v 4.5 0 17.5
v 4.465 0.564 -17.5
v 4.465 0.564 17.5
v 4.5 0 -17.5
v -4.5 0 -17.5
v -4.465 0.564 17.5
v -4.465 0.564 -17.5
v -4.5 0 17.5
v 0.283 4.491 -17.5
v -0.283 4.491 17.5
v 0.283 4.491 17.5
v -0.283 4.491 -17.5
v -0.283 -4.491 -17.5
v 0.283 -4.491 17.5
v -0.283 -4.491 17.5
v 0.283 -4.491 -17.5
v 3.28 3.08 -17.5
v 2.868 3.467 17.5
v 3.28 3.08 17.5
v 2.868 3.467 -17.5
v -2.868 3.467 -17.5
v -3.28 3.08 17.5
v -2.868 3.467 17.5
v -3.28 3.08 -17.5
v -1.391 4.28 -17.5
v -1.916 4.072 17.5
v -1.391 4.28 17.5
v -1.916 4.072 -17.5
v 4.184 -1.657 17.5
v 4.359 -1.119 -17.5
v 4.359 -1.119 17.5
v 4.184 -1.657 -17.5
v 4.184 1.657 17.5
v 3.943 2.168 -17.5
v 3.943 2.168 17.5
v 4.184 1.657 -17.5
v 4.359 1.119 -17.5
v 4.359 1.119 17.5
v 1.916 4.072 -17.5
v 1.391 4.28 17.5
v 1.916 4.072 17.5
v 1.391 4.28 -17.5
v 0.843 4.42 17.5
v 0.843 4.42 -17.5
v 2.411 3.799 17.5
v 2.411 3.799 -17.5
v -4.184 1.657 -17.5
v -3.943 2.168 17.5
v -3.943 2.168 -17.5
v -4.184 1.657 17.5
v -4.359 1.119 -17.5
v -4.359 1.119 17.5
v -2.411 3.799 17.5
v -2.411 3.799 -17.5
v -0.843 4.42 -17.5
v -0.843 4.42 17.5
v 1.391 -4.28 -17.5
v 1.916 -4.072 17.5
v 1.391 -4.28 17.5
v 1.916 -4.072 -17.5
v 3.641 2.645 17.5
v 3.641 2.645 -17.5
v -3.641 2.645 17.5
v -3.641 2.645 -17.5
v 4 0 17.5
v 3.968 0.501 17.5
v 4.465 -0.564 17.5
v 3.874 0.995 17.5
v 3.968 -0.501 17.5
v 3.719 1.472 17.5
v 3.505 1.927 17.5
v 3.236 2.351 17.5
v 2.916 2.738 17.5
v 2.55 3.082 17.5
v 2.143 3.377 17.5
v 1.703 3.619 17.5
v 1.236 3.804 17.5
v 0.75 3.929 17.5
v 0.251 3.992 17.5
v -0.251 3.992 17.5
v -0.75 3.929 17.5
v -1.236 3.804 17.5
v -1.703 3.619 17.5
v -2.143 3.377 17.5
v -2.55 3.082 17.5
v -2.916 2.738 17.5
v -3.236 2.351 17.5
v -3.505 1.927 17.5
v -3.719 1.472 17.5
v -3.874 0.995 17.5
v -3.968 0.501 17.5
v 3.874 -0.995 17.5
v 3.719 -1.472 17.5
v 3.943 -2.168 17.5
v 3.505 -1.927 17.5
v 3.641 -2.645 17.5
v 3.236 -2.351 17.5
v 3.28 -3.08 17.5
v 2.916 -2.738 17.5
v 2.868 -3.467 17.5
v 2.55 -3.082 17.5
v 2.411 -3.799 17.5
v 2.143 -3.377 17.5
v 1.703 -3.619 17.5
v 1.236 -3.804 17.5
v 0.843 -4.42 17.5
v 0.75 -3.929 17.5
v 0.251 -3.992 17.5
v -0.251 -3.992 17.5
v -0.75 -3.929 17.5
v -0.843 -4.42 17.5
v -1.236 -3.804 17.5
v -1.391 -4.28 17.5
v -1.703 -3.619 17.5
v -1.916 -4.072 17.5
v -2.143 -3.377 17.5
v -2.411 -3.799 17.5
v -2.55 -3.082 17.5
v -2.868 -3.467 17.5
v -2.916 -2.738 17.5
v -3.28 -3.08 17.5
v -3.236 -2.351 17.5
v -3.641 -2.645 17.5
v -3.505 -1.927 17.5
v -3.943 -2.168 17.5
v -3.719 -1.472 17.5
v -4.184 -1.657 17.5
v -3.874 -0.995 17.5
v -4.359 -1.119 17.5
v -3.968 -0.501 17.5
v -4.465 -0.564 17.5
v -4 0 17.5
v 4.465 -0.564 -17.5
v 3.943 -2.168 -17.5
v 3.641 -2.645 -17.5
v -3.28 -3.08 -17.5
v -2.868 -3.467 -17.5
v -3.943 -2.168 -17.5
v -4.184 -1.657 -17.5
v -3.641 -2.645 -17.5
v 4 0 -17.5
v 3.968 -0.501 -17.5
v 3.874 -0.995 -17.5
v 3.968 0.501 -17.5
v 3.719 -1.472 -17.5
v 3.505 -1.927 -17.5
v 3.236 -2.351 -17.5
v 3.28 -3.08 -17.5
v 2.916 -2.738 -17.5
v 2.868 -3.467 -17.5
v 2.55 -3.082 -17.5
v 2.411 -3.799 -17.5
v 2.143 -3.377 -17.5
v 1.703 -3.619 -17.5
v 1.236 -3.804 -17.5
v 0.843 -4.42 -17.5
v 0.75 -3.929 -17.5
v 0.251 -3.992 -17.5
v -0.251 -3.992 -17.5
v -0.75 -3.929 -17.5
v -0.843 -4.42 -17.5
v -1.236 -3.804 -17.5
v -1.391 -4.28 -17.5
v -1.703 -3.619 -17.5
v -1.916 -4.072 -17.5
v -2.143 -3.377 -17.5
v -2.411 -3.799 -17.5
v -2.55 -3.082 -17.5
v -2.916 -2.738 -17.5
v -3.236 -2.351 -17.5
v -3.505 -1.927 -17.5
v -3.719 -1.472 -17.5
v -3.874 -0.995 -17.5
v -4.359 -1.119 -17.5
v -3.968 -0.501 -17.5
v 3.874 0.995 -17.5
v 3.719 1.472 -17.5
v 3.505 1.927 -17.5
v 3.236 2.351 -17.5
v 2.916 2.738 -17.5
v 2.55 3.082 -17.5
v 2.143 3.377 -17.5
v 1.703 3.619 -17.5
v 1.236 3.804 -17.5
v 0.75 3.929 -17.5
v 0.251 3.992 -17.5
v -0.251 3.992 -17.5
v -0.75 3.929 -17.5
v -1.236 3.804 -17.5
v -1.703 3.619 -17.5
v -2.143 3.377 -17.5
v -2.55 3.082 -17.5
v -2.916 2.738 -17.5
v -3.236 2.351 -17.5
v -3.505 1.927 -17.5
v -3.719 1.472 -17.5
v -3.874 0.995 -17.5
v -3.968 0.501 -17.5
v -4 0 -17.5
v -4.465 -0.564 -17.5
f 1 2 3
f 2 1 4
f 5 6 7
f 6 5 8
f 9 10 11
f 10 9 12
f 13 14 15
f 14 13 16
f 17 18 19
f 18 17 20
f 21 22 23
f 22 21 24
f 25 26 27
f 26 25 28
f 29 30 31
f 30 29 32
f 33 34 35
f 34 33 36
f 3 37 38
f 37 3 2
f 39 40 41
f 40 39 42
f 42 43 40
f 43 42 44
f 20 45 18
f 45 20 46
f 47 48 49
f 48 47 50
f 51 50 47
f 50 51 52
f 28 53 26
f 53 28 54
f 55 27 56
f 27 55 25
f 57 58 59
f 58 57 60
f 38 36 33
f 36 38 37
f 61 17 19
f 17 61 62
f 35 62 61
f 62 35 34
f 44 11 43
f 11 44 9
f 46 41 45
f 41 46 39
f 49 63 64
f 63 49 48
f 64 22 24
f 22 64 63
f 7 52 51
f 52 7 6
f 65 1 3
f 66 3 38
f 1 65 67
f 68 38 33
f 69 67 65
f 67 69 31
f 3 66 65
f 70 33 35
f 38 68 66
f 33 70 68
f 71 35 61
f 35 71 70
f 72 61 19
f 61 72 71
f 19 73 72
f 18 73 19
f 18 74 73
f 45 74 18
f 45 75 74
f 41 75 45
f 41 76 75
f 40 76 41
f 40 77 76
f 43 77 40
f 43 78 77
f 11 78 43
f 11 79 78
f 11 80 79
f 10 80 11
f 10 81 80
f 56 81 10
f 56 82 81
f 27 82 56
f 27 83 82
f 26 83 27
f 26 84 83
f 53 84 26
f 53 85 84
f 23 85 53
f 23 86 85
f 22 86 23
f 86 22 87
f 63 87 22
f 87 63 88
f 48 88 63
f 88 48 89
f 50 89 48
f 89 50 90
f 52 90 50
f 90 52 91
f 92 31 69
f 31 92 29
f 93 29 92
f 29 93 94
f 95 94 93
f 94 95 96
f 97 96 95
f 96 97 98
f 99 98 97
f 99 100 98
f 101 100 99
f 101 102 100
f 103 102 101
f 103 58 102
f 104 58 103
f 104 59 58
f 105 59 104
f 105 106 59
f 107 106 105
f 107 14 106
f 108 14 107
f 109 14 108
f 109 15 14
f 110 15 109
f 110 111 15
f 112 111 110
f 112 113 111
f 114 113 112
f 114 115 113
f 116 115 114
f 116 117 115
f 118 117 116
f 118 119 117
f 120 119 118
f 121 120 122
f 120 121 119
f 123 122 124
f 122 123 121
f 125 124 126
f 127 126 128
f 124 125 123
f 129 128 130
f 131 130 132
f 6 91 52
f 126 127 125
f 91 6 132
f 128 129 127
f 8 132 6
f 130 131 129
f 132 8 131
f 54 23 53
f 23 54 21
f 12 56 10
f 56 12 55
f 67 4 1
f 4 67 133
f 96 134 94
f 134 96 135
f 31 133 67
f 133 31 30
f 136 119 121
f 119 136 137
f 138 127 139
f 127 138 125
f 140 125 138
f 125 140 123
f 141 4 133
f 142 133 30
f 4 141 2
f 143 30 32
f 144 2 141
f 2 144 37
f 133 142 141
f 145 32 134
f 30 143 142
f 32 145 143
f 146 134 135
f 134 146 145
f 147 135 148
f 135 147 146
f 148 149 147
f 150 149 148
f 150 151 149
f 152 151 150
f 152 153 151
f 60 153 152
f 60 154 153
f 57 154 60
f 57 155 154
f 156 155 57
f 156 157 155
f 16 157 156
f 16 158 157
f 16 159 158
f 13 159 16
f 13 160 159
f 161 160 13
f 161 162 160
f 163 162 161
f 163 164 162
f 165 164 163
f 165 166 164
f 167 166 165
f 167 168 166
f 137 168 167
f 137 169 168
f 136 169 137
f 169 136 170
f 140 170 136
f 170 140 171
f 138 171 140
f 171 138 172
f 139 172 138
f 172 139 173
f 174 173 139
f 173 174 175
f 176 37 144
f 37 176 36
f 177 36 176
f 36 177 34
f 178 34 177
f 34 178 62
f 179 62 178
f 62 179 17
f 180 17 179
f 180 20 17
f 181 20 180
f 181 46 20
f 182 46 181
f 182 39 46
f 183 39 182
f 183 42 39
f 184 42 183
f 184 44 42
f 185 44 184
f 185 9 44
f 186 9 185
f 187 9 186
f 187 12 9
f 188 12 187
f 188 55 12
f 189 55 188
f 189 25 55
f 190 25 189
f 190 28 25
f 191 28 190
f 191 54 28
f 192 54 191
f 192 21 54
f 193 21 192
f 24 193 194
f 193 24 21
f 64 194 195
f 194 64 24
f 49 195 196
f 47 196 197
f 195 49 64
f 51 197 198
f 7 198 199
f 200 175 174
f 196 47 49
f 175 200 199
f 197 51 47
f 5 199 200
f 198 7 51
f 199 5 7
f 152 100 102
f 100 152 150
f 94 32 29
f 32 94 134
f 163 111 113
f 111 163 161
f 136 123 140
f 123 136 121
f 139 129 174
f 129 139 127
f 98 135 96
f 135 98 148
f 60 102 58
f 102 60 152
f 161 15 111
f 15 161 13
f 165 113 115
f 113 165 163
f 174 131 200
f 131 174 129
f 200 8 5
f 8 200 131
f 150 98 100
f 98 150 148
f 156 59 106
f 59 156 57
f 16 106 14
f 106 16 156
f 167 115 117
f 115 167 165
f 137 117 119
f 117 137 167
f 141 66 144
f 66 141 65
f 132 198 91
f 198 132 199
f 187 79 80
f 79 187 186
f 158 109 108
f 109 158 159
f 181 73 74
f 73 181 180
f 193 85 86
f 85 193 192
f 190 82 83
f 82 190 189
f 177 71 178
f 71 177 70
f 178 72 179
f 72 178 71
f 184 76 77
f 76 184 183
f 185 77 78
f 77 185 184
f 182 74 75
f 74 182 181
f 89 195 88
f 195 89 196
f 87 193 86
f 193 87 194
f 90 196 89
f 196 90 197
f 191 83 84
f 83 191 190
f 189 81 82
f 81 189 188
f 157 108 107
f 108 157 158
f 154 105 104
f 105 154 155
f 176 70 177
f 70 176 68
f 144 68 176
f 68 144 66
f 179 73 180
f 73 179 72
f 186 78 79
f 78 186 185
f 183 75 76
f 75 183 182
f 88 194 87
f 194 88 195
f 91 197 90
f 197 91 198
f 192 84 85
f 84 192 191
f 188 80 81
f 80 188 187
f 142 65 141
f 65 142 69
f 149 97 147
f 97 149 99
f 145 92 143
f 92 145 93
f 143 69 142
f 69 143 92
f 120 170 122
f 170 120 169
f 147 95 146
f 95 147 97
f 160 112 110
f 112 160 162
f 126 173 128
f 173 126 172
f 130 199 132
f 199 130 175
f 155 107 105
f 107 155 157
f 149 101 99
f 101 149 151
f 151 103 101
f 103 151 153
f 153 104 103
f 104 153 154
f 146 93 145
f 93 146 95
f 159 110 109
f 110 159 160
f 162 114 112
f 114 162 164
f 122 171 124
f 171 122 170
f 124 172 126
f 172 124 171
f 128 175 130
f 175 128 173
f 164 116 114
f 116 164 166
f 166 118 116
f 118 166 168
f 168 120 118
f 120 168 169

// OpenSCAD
$fn = 50;


difference() {
	union() {
		translate(v = [0, 0, -17.5000000000]) {
			cylinder(h = 35, r = 4.5000000000);
		}
	}
	union() {
		translate(v = [0, 0, -100.0000000000]) {
			cylinder(h = 200, r = 4);
		}
	}
}
